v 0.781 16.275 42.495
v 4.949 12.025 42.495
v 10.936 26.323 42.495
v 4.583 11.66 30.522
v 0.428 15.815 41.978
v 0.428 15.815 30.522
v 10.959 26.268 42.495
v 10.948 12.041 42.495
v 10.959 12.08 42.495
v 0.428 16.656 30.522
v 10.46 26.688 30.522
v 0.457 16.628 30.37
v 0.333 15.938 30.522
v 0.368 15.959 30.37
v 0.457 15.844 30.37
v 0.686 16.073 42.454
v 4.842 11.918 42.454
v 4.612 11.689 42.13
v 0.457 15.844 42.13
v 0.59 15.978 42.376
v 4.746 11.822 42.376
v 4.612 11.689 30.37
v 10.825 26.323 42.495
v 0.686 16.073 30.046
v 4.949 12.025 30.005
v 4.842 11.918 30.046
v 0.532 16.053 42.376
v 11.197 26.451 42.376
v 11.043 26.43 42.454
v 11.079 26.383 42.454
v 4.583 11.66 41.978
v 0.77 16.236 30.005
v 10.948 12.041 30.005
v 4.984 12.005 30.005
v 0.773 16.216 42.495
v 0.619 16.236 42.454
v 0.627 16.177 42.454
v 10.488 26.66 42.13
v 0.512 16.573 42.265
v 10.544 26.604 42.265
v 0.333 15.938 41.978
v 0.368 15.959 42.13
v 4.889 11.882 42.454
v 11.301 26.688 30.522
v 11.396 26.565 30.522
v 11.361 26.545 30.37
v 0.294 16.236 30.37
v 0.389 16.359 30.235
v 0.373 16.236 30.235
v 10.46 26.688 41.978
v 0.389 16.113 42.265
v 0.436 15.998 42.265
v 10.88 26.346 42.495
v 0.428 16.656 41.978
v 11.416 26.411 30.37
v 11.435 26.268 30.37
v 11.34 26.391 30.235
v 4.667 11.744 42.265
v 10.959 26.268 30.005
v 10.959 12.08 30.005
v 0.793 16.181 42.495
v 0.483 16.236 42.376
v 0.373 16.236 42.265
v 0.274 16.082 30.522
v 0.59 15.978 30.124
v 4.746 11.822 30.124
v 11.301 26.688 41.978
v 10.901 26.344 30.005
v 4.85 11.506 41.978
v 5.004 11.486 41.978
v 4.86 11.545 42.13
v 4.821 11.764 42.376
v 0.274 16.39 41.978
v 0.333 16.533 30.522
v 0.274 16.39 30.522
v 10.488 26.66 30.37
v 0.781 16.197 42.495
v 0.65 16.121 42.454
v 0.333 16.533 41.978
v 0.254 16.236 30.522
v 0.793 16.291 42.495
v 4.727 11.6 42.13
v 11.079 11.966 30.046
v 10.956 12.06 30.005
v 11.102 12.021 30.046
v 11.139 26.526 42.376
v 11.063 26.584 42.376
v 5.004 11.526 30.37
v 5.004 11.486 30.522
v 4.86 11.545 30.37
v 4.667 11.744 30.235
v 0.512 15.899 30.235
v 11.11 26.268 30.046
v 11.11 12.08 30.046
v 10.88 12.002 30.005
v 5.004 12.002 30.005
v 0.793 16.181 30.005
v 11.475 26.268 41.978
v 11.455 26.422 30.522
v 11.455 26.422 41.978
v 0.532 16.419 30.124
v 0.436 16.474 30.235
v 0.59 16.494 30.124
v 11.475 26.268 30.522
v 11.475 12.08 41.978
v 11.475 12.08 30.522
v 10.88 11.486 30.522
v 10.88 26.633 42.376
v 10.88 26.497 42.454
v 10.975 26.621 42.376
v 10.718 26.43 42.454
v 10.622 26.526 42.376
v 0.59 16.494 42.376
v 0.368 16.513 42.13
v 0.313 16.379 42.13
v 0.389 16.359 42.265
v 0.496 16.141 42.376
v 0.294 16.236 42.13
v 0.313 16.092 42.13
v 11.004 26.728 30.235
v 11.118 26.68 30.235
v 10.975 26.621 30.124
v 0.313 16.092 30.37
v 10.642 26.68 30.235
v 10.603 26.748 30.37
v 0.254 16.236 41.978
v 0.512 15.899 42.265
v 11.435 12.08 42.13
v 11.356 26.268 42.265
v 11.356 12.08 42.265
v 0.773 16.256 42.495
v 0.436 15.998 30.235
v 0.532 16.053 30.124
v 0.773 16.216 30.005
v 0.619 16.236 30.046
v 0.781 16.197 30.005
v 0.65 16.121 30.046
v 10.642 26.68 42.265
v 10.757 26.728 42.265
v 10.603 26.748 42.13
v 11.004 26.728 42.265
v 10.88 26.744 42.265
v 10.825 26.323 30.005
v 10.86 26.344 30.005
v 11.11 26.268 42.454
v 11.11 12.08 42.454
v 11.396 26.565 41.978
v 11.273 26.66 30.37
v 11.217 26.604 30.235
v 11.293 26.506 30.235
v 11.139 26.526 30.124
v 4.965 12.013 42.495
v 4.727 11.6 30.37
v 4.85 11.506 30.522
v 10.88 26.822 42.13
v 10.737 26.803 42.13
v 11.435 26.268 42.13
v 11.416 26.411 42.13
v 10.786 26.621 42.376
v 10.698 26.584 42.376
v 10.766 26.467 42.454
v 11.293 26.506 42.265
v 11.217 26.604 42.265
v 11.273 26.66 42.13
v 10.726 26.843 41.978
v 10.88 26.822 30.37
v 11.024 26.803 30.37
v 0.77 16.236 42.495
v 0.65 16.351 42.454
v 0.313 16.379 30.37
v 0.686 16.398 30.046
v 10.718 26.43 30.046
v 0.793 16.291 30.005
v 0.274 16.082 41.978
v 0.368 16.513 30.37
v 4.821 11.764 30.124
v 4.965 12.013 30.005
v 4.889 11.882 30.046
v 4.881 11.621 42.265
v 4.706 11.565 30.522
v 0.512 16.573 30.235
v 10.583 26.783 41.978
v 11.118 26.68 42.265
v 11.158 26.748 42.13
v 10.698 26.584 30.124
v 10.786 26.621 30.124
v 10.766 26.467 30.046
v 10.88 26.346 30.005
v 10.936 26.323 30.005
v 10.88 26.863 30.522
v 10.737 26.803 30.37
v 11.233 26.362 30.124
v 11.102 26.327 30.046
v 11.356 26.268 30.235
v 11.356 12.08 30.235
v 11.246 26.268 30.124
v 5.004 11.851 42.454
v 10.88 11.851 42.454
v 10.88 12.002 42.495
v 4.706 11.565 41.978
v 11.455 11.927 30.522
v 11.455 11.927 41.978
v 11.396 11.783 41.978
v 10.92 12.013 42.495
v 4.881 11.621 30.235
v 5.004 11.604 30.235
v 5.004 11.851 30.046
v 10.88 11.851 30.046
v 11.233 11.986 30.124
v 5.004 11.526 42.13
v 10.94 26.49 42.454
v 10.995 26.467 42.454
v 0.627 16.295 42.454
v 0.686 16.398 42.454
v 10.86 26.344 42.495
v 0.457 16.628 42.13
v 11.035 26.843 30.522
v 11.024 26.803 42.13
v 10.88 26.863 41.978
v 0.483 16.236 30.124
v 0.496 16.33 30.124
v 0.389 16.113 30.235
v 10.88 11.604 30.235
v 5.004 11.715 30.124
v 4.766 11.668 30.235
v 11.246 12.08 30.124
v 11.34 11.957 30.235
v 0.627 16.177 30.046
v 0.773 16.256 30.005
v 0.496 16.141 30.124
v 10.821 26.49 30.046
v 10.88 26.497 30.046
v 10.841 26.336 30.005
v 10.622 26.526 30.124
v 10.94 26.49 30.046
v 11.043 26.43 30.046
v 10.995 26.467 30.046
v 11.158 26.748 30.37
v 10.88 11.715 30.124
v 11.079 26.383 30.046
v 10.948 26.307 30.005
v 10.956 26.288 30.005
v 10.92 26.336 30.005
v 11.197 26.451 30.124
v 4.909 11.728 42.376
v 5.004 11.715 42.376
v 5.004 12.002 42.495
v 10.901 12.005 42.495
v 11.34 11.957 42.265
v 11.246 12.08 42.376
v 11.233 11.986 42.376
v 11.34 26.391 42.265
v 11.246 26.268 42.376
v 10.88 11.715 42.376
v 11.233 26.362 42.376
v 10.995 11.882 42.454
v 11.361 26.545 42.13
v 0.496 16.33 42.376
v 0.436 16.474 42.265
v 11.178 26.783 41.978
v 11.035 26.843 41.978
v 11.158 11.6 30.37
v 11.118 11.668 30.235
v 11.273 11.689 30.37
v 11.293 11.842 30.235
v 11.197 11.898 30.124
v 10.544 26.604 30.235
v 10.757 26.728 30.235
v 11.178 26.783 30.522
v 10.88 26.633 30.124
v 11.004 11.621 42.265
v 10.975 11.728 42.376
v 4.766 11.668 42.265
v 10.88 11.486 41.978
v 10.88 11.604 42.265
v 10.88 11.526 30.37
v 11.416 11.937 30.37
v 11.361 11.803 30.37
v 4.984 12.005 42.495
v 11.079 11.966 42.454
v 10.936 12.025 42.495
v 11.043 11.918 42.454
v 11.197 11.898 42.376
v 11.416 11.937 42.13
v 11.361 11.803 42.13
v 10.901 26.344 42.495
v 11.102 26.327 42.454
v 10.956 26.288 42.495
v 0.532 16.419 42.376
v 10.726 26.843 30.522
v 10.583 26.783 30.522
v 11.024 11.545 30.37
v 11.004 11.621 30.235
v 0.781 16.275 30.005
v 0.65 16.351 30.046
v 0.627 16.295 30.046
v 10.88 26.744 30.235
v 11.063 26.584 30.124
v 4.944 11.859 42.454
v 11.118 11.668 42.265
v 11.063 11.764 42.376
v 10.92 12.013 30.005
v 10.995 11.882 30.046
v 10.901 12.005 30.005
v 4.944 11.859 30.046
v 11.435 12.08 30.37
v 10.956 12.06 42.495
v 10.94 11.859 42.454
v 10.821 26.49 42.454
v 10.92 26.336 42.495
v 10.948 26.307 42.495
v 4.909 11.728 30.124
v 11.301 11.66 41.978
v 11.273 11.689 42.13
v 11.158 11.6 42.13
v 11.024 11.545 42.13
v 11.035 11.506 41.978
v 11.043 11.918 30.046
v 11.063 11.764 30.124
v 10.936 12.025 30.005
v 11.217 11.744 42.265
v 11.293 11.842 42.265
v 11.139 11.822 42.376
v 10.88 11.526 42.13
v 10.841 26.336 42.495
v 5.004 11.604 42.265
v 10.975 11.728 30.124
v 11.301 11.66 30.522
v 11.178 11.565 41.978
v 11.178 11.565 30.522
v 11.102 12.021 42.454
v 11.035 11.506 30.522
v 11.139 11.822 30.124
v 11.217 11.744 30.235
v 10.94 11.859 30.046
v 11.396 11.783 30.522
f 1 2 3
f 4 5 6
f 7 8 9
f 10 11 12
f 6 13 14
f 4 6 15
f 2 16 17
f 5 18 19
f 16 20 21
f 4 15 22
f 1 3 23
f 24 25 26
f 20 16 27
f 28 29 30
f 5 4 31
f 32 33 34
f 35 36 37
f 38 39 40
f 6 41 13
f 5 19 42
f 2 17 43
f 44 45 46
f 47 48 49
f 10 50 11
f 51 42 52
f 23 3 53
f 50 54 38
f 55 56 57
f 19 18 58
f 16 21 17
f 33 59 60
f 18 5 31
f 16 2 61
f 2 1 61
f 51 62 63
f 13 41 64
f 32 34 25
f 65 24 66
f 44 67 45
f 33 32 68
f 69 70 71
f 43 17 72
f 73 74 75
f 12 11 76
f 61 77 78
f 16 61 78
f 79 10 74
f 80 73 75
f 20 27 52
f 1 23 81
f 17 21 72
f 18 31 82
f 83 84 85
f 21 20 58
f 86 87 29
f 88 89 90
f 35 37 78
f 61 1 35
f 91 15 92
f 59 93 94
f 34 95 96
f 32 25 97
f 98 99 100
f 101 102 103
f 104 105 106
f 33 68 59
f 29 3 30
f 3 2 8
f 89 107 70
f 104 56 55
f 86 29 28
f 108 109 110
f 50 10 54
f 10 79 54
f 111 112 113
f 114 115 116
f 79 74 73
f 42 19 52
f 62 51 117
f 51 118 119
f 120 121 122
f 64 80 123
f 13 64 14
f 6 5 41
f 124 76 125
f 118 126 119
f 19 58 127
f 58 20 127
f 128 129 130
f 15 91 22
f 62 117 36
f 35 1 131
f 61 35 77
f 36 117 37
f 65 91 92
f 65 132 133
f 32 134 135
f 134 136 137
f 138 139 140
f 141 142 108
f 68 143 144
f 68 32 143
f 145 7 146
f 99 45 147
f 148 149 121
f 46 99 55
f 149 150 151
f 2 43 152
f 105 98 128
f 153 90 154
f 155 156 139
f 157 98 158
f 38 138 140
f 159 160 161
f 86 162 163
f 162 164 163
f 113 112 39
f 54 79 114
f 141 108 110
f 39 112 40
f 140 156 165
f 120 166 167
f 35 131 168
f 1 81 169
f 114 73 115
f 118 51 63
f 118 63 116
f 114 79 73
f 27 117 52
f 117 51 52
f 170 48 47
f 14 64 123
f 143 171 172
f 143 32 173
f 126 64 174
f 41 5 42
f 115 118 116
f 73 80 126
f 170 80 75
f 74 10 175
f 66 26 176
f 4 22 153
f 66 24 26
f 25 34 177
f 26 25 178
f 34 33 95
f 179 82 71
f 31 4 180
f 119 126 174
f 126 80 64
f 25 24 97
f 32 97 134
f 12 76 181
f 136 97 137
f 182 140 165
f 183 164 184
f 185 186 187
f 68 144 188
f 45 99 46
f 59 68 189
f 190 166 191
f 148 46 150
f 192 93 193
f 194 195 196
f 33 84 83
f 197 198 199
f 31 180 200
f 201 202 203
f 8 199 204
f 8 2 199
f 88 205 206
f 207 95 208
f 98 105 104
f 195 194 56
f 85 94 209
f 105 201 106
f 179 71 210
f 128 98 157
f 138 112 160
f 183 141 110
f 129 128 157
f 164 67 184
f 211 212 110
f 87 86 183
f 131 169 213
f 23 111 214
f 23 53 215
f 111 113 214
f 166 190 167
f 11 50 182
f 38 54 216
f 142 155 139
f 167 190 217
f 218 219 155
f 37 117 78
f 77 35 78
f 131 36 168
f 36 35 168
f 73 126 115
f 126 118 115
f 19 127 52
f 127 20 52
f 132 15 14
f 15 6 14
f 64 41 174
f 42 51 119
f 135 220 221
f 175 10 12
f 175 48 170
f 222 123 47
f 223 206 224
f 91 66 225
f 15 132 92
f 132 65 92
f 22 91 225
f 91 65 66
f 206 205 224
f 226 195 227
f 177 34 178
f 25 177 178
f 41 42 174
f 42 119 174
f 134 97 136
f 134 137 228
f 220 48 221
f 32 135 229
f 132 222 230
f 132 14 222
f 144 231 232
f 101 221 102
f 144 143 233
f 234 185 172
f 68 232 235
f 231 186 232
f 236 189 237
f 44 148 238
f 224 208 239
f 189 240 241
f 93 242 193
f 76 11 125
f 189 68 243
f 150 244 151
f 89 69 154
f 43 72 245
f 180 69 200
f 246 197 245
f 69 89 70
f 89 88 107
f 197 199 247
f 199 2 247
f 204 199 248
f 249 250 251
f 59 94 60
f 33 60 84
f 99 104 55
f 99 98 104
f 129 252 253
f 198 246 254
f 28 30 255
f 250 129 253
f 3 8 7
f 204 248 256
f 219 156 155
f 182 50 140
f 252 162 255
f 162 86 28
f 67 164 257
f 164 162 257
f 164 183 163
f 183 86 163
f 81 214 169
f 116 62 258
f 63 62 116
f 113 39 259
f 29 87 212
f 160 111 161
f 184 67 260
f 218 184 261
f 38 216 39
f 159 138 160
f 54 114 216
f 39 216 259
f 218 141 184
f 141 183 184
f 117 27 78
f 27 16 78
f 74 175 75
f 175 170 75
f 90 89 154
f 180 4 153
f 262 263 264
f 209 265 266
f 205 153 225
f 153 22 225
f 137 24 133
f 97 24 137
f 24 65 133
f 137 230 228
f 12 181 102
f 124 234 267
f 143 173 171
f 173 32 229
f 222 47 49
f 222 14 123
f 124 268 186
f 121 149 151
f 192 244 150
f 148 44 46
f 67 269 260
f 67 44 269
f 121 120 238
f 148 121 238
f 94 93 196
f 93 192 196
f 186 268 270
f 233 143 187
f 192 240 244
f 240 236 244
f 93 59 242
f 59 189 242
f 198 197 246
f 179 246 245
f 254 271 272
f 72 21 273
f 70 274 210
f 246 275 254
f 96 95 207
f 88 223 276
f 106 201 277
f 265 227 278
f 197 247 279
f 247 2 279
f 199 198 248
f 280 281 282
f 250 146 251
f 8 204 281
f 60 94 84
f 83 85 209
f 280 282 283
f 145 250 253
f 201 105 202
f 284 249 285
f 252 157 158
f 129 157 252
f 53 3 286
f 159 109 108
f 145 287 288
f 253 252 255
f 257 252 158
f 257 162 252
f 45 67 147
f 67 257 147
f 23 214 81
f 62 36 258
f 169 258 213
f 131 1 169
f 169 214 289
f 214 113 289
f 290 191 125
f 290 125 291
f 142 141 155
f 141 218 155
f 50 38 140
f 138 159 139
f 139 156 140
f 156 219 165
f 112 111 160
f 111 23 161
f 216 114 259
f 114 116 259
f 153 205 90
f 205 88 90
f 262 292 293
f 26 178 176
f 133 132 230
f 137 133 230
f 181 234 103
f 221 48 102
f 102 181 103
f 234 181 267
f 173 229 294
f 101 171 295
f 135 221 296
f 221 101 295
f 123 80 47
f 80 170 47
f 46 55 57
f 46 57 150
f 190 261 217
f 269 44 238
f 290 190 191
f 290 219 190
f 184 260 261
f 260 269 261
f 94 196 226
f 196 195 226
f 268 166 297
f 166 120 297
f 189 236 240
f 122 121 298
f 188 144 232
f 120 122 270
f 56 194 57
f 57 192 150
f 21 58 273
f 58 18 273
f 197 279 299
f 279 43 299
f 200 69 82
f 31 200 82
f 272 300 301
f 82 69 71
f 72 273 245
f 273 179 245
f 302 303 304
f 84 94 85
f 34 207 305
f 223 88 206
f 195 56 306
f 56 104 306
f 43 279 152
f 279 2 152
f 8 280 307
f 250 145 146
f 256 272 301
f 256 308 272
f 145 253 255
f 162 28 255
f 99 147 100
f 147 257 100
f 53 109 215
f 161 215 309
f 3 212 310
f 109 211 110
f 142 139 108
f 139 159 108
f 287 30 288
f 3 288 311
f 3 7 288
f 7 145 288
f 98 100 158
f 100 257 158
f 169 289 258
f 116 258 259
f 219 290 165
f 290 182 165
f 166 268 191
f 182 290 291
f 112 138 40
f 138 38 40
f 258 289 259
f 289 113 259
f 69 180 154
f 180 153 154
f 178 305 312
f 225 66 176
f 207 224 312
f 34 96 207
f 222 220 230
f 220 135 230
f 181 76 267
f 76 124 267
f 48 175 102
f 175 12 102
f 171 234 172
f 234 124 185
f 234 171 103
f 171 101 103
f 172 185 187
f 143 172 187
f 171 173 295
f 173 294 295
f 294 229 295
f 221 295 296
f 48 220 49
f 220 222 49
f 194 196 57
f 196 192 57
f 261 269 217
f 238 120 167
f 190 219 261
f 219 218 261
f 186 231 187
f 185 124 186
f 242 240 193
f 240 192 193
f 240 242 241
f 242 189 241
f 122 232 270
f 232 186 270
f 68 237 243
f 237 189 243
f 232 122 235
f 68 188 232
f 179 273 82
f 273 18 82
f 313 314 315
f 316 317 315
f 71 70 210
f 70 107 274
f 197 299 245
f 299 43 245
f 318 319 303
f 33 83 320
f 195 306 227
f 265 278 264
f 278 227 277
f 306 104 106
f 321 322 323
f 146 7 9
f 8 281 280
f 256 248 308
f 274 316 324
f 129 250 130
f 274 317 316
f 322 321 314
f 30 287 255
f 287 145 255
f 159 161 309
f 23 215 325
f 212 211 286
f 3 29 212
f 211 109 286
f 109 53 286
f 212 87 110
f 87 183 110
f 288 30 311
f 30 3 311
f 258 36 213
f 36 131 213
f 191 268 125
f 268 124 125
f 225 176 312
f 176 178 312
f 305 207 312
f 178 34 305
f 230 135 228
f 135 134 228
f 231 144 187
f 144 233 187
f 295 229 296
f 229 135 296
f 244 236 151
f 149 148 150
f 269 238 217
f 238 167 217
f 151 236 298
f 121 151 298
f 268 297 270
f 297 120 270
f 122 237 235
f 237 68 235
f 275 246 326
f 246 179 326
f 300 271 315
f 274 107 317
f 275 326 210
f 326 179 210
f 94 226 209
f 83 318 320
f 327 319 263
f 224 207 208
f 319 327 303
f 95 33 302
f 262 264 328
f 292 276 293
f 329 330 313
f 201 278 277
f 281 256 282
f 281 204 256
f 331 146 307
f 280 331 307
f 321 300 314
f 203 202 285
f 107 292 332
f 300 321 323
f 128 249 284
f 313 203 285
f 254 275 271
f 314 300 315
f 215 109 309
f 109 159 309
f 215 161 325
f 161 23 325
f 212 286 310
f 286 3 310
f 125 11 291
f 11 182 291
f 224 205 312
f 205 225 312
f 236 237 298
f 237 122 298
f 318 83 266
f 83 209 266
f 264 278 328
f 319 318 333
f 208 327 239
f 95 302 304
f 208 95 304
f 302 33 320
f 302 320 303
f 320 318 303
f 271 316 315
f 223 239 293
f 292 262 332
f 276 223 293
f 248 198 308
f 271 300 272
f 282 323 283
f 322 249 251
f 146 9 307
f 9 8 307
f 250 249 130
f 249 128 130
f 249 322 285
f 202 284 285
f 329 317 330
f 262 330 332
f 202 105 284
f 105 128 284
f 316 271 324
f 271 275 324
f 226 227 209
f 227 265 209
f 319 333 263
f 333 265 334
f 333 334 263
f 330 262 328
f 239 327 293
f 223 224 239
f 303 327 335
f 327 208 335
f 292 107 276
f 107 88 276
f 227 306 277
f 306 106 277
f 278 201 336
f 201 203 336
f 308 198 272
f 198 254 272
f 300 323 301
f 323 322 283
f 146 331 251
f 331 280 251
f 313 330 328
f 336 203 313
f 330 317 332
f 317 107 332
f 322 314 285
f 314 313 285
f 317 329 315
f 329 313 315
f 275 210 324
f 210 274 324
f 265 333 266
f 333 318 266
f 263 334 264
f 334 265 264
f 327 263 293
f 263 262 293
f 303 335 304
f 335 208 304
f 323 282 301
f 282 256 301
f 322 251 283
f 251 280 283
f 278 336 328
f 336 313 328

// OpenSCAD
// file: def.scad
round_radius = 0.6;
sticker_margin = 1.2;
sticker_round_radius = 0.4;
cube_size = 60;
disk_height = 12.5;
disk_radius = cube_size / 2;
base_size = cube_size / 2 / sqrt(10 + 7 * sqrt(2));
cut1_dis = base_size * (1 + sqrt(2) / 2);
cut2_dis = cube_size / 2;
inf = cube_size * 10;

module _cube() {
    cube([cube_size - round_radius * 2, cube_size - round_radius * 2, cube_size - round_radius * 2], center = true);
}

module _disk() {
    translate([0, 0, cube_size / 2 + disk_height / 2])
        cylinder(r = disk_radius - round_radius, h = disk_height - round_radius * 2, center = true, $fn = 96);
}

module _int_cut1() {
    translate([-inf, -inf, cut1_dis + round_radius])
        cube([inf * 2, inf * 2, inf]);
}

module _dif_cut1() {
    translate([-inf, -inf, cut1_dis - round_radius])
        cube([inf * 2, inf * 2, inf]);
}

module _sticker_int_cut1() {
    translate([-inf, -inf, cut1_dis + sticker_margin])
        cube([inf * 2, inf * 2, inf]);
}

module _sticker_dif_cut1() {
    translate([-inf, -inf, cut1_dis - sticker_margin])
        cube([inf * 2, inf * 2, inf]);
}

module _int_cut2() {
    translate([-inf, -inf, cut2_dis + round_radius])
        cube([inf * 2, inf * 2, inf]);
}

module _dif_cut2() {
    translate([-inf, -inf, cut2_dis - round_radius])
        cube([inf * 2, inf * 2, inf]);
}

module _sticker_int_cut2() {
    translate([-inf, -inf, cut2_dis + sticker_margin])
        cube([inf * 2, inf * 2, inf]);
}

module _sticker_dif_cut2() {
    translate([-inf, -inf, cut2_dis - sticker_margin])
        cube([inf * 2, inf * 2, inf]);
}

module _sticker_cube() {
    translate([-cube_size / 2 + sticker_margin, -cube_size / 2 + sticker_margin, cube_size / 2 - 0.05])
        cube([cube_size - sticker_margin * 2, cube_size - sticker_margin * 2, 0.1]);
}

module _sticker_disk() {
    translate([0, 0, cube_size / 2 + disk_height - 0.05])
        cylinder(r = disk_radius - sticker_margin, h = 0.1, center = true, $fn = 96);
}
// main file
include <def.scad>

module block_123() {
    minkowski() {
        difference() {
            intersection() {
                _disk();
                intersection_for (deg = [0, -45])
                    rotate([-90, 0, deg])
                        _int_cut1();
            }
            for (deg = [45, -90])
                rotate([-90, 0, deg])
                    _dif_cut1();
        }
        sphere(r = round_radius, $fn = 24);
    }
}

block_123();
